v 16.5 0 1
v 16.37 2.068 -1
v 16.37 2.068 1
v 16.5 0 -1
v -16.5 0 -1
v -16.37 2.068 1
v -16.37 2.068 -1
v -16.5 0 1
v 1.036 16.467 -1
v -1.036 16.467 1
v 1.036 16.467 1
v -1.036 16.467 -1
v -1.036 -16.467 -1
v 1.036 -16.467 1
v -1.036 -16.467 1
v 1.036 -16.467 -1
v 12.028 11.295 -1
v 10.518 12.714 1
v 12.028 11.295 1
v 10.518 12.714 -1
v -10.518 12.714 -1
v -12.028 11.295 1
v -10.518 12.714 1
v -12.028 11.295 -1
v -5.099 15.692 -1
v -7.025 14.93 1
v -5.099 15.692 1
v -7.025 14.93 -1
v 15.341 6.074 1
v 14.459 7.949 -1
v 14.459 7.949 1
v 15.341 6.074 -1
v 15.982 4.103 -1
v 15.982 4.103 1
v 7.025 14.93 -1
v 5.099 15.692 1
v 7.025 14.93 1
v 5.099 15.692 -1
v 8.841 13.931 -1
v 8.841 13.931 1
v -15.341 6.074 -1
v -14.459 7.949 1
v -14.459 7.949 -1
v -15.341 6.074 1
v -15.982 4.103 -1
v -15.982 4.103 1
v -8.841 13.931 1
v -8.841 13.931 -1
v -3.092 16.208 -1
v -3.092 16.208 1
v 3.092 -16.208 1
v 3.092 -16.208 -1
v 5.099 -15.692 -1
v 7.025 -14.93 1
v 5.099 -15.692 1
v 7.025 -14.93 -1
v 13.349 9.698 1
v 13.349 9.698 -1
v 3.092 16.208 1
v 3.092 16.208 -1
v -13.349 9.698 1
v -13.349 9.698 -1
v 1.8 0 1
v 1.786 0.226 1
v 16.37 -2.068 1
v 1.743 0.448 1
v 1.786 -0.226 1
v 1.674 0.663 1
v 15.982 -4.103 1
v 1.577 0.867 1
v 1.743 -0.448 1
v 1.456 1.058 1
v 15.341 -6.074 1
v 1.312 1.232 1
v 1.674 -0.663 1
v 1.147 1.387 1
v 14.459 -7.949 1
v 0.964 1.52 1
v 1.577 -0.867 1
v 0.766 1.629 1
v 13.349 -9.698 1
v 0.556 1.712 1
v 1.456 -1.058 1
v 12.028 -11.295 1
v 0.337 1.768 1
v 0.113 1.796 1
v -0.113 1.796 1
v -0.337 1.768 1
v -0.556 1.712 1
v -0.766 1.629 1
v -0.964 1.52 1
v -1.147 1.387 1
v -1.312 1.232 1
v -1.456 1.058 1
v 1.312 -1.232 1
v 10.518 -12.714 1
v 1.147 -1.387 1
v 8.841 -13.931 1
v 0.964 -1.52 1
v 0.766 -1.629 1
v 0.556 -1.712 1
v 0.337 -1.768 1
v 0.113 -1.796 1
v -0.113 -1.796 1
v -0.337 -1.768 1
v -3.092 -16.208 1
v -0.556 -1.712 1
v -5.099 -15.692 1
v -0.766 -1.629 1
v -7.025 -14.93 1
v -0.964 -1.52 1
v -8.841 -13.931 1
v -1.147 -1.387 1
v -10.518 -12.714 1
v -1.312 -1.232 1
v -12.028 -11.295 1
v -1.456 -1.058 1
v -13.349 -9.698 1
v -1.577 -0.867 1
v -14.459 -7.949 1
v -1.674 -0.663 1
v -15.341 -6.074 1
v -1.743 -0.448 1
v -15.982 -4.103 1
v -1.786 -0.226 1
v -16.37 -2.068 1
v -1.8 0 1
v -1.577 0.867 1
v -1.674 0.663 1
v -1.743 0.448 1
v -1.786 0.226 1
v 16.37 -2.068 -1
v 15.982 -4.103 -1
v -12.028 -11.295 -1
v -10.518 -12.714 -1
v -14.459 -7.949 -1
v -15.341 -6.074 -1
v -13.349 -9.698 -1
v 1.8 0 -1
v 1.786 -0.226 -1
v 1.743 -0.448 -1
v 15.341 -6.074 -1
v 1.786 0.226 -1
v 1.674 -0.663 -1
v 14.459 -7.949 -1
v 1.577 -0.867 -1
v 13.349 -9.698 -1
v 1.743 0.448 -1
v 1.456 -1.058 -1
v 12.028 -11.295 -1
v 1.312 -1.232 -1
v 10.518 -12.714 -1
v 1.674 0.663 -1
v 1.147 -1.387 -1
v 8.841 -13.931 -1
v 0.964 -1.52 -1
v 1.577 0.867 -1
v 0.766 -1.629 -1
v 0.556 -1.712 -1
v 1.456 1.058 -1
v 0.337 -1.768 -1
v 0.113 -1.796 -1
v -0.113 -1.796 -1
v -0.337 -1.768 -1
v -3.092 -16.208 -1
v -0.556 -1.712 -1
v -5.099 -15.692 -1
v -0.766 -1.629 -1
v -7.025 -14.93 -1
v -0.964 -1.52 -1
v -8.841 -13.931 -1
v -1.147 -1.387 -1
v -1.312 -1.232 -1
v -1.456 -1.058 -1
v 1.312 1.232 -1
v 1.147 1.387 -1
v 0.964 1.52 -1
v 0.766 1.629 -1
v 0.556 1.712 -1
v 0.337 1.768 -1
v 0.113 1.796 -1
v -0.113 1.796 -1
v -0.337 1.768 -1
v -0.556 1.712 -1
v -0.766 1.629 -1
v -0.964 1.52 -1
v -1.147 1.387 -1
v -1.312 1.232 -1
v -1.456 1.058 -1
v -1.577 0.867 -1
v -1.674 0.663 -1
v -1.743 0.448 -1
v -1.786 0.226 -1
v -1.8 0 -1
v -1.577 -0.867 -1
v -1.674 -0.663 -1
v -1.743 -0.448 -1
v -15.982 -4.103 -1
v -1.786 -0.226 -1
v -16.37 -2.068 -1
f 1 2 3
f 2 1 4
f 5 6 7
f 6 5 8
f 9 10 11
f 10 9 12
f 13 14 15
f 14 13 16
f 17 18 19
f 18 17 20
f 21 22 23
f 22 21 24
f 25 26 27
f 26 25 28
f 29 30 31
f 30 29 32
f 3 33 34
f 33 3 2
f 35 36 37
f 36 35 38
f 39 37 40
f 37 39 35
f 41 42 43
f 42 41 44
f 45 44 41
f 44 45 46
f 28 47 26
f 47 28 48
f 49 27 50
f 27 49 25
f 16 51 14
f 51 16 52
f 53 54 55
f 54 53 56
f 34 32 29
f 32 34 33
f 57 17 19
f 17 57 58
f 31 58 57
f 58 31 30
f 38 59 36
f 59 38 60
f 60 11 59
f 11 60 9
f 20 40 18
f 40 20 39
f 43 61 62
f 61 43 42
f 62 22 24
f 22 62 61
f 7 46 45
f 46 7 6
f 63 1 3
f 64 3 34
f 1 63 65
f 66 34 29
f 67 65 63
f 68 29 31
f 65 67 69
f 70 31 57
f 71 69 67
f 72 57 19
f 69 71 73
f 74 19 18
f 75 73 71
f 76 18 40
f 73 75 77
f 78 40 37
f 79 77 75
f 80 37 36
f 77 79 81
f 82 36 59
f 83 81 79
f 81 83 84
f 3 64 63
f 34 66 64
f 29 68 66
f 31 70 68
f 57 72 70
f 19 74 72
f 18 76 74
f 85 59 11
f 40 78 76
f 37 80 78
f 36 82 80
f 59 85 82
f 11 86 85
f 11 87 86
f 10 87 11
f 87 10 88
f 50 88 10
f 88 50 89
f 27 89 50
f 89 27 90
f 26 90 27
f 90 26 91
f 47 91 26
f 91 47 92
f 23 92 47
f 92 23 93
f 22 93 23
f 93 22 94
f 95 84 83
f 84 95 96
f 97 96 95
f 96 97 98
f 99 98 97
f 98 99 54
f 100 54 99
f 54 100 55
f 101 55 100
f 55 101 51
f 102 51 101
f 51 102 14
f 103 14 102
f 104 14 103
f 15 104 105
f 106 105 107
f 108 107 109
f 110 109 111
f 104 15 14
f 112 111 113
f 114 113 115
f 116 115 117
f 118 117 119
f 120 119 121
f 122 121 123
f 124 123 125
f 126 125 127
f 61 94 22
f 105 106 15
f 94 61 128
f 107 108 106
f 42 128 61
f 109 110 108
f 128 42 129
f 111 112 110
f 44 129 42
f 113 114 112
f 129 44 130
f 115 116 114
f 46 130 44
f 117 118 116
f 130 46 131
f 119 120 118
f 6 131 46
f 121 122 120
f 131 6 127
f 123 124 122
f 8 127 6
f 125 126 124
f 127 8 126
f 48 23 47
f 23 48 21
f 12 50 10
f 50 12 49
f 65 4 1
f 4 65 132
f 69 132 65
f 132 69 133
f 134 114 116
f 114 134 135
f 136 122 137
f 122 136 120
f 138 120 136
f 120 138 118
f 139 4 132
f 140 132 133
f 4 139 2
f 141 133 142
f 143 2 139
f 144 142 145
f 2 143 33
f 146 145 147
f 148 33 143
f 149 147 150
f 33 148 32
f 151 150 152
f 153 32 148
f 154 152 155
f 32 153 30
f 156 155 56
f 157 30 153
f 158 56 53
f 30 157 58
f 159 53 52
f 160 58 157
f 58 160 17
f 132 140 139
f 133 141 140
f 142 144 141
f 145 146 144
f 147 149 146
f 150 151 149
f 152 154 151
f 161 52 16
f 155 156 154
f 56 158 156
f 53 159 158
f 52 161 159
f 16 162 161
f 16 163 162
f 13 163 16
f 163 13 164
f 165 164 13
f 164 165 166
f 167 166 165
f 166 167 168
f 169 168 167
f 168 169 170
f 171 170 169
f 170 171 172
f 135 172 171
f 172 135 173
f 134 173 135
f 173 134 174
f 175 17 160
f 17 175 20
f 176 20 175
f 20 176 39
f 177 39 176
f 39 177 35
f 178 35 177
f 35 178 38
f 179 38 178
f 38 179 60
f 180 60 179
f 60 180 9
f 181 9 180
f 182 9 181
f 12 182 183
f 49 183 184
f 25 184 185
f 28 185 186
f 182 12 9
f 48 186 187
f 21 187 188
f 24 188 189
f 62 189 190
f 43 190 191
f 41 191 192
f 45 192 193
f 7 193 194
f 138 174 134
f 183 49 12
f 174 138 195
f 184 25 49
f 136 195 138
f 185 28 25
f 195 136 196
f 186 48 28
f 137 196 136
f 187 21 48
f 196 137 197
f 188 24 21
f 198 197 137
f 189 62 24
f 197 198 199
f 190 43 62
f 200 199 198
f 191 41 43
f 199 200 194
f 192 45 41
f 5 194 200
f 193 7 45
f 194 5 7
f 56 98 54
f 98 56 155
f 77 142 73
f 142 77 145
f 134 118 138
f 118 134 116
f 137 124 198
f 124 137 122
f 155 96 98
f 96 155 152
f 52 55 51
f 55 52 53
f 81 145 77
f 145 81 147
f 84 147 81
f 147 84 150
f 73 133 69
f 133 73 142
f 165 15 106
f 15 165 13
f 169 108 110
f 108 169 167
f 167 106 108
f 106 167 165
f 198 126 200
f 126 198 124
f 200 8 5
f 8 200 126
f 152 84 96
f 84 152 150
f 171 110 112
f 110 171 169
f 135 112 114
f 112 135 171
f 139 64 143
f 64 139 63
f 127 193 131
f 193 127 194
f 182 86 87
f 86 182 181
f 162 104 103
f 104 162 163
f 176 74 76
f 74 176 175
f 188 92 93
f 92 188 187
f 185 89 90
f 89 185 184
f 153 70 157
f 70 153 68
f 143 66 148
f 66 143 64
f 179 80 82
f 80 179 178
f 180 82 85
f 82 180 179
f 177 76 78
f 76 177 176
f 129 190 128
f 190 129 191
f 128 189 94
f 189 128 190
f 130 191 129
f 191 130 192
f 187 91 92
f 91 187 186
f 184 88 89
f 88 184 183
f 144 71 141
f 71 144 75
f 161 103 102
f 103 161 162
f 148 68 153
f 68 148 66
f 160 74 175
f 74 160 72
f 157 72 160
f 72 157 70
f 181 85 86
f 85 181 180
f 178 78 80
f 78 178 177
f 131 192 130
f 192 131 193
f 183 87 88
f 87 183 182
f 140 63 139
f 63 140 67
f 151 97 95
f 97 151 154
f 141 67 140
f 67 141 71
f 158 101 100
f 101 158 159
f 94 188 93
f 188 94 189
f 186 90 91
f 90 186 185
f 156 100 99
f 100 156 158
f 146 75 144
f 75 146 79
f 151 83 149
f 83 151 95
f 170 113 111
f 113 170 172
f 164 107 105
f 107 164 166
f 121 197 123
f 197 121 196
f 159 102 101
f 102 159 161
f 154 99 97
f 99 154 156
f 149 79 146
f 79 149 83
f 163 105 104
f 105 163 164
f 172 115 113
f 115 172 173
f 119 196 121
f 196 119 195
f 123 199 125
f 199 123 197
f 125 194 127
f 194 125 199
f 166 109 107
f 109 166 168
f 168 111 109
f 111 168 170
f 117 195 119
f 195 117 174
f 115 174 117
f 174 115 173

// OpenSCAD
$fn = 50;


difference() {
	union() {
		translate(v = [0, 0, -1.0000000000]) {
			cylinder(h = 2, r = 16.5000000000);
		}
	}
	union() {
		translate(v = [0, 0, -100.0000000000]) {
			cylinder(h = 200, r = 1.8000000000);
		}
	}
}
